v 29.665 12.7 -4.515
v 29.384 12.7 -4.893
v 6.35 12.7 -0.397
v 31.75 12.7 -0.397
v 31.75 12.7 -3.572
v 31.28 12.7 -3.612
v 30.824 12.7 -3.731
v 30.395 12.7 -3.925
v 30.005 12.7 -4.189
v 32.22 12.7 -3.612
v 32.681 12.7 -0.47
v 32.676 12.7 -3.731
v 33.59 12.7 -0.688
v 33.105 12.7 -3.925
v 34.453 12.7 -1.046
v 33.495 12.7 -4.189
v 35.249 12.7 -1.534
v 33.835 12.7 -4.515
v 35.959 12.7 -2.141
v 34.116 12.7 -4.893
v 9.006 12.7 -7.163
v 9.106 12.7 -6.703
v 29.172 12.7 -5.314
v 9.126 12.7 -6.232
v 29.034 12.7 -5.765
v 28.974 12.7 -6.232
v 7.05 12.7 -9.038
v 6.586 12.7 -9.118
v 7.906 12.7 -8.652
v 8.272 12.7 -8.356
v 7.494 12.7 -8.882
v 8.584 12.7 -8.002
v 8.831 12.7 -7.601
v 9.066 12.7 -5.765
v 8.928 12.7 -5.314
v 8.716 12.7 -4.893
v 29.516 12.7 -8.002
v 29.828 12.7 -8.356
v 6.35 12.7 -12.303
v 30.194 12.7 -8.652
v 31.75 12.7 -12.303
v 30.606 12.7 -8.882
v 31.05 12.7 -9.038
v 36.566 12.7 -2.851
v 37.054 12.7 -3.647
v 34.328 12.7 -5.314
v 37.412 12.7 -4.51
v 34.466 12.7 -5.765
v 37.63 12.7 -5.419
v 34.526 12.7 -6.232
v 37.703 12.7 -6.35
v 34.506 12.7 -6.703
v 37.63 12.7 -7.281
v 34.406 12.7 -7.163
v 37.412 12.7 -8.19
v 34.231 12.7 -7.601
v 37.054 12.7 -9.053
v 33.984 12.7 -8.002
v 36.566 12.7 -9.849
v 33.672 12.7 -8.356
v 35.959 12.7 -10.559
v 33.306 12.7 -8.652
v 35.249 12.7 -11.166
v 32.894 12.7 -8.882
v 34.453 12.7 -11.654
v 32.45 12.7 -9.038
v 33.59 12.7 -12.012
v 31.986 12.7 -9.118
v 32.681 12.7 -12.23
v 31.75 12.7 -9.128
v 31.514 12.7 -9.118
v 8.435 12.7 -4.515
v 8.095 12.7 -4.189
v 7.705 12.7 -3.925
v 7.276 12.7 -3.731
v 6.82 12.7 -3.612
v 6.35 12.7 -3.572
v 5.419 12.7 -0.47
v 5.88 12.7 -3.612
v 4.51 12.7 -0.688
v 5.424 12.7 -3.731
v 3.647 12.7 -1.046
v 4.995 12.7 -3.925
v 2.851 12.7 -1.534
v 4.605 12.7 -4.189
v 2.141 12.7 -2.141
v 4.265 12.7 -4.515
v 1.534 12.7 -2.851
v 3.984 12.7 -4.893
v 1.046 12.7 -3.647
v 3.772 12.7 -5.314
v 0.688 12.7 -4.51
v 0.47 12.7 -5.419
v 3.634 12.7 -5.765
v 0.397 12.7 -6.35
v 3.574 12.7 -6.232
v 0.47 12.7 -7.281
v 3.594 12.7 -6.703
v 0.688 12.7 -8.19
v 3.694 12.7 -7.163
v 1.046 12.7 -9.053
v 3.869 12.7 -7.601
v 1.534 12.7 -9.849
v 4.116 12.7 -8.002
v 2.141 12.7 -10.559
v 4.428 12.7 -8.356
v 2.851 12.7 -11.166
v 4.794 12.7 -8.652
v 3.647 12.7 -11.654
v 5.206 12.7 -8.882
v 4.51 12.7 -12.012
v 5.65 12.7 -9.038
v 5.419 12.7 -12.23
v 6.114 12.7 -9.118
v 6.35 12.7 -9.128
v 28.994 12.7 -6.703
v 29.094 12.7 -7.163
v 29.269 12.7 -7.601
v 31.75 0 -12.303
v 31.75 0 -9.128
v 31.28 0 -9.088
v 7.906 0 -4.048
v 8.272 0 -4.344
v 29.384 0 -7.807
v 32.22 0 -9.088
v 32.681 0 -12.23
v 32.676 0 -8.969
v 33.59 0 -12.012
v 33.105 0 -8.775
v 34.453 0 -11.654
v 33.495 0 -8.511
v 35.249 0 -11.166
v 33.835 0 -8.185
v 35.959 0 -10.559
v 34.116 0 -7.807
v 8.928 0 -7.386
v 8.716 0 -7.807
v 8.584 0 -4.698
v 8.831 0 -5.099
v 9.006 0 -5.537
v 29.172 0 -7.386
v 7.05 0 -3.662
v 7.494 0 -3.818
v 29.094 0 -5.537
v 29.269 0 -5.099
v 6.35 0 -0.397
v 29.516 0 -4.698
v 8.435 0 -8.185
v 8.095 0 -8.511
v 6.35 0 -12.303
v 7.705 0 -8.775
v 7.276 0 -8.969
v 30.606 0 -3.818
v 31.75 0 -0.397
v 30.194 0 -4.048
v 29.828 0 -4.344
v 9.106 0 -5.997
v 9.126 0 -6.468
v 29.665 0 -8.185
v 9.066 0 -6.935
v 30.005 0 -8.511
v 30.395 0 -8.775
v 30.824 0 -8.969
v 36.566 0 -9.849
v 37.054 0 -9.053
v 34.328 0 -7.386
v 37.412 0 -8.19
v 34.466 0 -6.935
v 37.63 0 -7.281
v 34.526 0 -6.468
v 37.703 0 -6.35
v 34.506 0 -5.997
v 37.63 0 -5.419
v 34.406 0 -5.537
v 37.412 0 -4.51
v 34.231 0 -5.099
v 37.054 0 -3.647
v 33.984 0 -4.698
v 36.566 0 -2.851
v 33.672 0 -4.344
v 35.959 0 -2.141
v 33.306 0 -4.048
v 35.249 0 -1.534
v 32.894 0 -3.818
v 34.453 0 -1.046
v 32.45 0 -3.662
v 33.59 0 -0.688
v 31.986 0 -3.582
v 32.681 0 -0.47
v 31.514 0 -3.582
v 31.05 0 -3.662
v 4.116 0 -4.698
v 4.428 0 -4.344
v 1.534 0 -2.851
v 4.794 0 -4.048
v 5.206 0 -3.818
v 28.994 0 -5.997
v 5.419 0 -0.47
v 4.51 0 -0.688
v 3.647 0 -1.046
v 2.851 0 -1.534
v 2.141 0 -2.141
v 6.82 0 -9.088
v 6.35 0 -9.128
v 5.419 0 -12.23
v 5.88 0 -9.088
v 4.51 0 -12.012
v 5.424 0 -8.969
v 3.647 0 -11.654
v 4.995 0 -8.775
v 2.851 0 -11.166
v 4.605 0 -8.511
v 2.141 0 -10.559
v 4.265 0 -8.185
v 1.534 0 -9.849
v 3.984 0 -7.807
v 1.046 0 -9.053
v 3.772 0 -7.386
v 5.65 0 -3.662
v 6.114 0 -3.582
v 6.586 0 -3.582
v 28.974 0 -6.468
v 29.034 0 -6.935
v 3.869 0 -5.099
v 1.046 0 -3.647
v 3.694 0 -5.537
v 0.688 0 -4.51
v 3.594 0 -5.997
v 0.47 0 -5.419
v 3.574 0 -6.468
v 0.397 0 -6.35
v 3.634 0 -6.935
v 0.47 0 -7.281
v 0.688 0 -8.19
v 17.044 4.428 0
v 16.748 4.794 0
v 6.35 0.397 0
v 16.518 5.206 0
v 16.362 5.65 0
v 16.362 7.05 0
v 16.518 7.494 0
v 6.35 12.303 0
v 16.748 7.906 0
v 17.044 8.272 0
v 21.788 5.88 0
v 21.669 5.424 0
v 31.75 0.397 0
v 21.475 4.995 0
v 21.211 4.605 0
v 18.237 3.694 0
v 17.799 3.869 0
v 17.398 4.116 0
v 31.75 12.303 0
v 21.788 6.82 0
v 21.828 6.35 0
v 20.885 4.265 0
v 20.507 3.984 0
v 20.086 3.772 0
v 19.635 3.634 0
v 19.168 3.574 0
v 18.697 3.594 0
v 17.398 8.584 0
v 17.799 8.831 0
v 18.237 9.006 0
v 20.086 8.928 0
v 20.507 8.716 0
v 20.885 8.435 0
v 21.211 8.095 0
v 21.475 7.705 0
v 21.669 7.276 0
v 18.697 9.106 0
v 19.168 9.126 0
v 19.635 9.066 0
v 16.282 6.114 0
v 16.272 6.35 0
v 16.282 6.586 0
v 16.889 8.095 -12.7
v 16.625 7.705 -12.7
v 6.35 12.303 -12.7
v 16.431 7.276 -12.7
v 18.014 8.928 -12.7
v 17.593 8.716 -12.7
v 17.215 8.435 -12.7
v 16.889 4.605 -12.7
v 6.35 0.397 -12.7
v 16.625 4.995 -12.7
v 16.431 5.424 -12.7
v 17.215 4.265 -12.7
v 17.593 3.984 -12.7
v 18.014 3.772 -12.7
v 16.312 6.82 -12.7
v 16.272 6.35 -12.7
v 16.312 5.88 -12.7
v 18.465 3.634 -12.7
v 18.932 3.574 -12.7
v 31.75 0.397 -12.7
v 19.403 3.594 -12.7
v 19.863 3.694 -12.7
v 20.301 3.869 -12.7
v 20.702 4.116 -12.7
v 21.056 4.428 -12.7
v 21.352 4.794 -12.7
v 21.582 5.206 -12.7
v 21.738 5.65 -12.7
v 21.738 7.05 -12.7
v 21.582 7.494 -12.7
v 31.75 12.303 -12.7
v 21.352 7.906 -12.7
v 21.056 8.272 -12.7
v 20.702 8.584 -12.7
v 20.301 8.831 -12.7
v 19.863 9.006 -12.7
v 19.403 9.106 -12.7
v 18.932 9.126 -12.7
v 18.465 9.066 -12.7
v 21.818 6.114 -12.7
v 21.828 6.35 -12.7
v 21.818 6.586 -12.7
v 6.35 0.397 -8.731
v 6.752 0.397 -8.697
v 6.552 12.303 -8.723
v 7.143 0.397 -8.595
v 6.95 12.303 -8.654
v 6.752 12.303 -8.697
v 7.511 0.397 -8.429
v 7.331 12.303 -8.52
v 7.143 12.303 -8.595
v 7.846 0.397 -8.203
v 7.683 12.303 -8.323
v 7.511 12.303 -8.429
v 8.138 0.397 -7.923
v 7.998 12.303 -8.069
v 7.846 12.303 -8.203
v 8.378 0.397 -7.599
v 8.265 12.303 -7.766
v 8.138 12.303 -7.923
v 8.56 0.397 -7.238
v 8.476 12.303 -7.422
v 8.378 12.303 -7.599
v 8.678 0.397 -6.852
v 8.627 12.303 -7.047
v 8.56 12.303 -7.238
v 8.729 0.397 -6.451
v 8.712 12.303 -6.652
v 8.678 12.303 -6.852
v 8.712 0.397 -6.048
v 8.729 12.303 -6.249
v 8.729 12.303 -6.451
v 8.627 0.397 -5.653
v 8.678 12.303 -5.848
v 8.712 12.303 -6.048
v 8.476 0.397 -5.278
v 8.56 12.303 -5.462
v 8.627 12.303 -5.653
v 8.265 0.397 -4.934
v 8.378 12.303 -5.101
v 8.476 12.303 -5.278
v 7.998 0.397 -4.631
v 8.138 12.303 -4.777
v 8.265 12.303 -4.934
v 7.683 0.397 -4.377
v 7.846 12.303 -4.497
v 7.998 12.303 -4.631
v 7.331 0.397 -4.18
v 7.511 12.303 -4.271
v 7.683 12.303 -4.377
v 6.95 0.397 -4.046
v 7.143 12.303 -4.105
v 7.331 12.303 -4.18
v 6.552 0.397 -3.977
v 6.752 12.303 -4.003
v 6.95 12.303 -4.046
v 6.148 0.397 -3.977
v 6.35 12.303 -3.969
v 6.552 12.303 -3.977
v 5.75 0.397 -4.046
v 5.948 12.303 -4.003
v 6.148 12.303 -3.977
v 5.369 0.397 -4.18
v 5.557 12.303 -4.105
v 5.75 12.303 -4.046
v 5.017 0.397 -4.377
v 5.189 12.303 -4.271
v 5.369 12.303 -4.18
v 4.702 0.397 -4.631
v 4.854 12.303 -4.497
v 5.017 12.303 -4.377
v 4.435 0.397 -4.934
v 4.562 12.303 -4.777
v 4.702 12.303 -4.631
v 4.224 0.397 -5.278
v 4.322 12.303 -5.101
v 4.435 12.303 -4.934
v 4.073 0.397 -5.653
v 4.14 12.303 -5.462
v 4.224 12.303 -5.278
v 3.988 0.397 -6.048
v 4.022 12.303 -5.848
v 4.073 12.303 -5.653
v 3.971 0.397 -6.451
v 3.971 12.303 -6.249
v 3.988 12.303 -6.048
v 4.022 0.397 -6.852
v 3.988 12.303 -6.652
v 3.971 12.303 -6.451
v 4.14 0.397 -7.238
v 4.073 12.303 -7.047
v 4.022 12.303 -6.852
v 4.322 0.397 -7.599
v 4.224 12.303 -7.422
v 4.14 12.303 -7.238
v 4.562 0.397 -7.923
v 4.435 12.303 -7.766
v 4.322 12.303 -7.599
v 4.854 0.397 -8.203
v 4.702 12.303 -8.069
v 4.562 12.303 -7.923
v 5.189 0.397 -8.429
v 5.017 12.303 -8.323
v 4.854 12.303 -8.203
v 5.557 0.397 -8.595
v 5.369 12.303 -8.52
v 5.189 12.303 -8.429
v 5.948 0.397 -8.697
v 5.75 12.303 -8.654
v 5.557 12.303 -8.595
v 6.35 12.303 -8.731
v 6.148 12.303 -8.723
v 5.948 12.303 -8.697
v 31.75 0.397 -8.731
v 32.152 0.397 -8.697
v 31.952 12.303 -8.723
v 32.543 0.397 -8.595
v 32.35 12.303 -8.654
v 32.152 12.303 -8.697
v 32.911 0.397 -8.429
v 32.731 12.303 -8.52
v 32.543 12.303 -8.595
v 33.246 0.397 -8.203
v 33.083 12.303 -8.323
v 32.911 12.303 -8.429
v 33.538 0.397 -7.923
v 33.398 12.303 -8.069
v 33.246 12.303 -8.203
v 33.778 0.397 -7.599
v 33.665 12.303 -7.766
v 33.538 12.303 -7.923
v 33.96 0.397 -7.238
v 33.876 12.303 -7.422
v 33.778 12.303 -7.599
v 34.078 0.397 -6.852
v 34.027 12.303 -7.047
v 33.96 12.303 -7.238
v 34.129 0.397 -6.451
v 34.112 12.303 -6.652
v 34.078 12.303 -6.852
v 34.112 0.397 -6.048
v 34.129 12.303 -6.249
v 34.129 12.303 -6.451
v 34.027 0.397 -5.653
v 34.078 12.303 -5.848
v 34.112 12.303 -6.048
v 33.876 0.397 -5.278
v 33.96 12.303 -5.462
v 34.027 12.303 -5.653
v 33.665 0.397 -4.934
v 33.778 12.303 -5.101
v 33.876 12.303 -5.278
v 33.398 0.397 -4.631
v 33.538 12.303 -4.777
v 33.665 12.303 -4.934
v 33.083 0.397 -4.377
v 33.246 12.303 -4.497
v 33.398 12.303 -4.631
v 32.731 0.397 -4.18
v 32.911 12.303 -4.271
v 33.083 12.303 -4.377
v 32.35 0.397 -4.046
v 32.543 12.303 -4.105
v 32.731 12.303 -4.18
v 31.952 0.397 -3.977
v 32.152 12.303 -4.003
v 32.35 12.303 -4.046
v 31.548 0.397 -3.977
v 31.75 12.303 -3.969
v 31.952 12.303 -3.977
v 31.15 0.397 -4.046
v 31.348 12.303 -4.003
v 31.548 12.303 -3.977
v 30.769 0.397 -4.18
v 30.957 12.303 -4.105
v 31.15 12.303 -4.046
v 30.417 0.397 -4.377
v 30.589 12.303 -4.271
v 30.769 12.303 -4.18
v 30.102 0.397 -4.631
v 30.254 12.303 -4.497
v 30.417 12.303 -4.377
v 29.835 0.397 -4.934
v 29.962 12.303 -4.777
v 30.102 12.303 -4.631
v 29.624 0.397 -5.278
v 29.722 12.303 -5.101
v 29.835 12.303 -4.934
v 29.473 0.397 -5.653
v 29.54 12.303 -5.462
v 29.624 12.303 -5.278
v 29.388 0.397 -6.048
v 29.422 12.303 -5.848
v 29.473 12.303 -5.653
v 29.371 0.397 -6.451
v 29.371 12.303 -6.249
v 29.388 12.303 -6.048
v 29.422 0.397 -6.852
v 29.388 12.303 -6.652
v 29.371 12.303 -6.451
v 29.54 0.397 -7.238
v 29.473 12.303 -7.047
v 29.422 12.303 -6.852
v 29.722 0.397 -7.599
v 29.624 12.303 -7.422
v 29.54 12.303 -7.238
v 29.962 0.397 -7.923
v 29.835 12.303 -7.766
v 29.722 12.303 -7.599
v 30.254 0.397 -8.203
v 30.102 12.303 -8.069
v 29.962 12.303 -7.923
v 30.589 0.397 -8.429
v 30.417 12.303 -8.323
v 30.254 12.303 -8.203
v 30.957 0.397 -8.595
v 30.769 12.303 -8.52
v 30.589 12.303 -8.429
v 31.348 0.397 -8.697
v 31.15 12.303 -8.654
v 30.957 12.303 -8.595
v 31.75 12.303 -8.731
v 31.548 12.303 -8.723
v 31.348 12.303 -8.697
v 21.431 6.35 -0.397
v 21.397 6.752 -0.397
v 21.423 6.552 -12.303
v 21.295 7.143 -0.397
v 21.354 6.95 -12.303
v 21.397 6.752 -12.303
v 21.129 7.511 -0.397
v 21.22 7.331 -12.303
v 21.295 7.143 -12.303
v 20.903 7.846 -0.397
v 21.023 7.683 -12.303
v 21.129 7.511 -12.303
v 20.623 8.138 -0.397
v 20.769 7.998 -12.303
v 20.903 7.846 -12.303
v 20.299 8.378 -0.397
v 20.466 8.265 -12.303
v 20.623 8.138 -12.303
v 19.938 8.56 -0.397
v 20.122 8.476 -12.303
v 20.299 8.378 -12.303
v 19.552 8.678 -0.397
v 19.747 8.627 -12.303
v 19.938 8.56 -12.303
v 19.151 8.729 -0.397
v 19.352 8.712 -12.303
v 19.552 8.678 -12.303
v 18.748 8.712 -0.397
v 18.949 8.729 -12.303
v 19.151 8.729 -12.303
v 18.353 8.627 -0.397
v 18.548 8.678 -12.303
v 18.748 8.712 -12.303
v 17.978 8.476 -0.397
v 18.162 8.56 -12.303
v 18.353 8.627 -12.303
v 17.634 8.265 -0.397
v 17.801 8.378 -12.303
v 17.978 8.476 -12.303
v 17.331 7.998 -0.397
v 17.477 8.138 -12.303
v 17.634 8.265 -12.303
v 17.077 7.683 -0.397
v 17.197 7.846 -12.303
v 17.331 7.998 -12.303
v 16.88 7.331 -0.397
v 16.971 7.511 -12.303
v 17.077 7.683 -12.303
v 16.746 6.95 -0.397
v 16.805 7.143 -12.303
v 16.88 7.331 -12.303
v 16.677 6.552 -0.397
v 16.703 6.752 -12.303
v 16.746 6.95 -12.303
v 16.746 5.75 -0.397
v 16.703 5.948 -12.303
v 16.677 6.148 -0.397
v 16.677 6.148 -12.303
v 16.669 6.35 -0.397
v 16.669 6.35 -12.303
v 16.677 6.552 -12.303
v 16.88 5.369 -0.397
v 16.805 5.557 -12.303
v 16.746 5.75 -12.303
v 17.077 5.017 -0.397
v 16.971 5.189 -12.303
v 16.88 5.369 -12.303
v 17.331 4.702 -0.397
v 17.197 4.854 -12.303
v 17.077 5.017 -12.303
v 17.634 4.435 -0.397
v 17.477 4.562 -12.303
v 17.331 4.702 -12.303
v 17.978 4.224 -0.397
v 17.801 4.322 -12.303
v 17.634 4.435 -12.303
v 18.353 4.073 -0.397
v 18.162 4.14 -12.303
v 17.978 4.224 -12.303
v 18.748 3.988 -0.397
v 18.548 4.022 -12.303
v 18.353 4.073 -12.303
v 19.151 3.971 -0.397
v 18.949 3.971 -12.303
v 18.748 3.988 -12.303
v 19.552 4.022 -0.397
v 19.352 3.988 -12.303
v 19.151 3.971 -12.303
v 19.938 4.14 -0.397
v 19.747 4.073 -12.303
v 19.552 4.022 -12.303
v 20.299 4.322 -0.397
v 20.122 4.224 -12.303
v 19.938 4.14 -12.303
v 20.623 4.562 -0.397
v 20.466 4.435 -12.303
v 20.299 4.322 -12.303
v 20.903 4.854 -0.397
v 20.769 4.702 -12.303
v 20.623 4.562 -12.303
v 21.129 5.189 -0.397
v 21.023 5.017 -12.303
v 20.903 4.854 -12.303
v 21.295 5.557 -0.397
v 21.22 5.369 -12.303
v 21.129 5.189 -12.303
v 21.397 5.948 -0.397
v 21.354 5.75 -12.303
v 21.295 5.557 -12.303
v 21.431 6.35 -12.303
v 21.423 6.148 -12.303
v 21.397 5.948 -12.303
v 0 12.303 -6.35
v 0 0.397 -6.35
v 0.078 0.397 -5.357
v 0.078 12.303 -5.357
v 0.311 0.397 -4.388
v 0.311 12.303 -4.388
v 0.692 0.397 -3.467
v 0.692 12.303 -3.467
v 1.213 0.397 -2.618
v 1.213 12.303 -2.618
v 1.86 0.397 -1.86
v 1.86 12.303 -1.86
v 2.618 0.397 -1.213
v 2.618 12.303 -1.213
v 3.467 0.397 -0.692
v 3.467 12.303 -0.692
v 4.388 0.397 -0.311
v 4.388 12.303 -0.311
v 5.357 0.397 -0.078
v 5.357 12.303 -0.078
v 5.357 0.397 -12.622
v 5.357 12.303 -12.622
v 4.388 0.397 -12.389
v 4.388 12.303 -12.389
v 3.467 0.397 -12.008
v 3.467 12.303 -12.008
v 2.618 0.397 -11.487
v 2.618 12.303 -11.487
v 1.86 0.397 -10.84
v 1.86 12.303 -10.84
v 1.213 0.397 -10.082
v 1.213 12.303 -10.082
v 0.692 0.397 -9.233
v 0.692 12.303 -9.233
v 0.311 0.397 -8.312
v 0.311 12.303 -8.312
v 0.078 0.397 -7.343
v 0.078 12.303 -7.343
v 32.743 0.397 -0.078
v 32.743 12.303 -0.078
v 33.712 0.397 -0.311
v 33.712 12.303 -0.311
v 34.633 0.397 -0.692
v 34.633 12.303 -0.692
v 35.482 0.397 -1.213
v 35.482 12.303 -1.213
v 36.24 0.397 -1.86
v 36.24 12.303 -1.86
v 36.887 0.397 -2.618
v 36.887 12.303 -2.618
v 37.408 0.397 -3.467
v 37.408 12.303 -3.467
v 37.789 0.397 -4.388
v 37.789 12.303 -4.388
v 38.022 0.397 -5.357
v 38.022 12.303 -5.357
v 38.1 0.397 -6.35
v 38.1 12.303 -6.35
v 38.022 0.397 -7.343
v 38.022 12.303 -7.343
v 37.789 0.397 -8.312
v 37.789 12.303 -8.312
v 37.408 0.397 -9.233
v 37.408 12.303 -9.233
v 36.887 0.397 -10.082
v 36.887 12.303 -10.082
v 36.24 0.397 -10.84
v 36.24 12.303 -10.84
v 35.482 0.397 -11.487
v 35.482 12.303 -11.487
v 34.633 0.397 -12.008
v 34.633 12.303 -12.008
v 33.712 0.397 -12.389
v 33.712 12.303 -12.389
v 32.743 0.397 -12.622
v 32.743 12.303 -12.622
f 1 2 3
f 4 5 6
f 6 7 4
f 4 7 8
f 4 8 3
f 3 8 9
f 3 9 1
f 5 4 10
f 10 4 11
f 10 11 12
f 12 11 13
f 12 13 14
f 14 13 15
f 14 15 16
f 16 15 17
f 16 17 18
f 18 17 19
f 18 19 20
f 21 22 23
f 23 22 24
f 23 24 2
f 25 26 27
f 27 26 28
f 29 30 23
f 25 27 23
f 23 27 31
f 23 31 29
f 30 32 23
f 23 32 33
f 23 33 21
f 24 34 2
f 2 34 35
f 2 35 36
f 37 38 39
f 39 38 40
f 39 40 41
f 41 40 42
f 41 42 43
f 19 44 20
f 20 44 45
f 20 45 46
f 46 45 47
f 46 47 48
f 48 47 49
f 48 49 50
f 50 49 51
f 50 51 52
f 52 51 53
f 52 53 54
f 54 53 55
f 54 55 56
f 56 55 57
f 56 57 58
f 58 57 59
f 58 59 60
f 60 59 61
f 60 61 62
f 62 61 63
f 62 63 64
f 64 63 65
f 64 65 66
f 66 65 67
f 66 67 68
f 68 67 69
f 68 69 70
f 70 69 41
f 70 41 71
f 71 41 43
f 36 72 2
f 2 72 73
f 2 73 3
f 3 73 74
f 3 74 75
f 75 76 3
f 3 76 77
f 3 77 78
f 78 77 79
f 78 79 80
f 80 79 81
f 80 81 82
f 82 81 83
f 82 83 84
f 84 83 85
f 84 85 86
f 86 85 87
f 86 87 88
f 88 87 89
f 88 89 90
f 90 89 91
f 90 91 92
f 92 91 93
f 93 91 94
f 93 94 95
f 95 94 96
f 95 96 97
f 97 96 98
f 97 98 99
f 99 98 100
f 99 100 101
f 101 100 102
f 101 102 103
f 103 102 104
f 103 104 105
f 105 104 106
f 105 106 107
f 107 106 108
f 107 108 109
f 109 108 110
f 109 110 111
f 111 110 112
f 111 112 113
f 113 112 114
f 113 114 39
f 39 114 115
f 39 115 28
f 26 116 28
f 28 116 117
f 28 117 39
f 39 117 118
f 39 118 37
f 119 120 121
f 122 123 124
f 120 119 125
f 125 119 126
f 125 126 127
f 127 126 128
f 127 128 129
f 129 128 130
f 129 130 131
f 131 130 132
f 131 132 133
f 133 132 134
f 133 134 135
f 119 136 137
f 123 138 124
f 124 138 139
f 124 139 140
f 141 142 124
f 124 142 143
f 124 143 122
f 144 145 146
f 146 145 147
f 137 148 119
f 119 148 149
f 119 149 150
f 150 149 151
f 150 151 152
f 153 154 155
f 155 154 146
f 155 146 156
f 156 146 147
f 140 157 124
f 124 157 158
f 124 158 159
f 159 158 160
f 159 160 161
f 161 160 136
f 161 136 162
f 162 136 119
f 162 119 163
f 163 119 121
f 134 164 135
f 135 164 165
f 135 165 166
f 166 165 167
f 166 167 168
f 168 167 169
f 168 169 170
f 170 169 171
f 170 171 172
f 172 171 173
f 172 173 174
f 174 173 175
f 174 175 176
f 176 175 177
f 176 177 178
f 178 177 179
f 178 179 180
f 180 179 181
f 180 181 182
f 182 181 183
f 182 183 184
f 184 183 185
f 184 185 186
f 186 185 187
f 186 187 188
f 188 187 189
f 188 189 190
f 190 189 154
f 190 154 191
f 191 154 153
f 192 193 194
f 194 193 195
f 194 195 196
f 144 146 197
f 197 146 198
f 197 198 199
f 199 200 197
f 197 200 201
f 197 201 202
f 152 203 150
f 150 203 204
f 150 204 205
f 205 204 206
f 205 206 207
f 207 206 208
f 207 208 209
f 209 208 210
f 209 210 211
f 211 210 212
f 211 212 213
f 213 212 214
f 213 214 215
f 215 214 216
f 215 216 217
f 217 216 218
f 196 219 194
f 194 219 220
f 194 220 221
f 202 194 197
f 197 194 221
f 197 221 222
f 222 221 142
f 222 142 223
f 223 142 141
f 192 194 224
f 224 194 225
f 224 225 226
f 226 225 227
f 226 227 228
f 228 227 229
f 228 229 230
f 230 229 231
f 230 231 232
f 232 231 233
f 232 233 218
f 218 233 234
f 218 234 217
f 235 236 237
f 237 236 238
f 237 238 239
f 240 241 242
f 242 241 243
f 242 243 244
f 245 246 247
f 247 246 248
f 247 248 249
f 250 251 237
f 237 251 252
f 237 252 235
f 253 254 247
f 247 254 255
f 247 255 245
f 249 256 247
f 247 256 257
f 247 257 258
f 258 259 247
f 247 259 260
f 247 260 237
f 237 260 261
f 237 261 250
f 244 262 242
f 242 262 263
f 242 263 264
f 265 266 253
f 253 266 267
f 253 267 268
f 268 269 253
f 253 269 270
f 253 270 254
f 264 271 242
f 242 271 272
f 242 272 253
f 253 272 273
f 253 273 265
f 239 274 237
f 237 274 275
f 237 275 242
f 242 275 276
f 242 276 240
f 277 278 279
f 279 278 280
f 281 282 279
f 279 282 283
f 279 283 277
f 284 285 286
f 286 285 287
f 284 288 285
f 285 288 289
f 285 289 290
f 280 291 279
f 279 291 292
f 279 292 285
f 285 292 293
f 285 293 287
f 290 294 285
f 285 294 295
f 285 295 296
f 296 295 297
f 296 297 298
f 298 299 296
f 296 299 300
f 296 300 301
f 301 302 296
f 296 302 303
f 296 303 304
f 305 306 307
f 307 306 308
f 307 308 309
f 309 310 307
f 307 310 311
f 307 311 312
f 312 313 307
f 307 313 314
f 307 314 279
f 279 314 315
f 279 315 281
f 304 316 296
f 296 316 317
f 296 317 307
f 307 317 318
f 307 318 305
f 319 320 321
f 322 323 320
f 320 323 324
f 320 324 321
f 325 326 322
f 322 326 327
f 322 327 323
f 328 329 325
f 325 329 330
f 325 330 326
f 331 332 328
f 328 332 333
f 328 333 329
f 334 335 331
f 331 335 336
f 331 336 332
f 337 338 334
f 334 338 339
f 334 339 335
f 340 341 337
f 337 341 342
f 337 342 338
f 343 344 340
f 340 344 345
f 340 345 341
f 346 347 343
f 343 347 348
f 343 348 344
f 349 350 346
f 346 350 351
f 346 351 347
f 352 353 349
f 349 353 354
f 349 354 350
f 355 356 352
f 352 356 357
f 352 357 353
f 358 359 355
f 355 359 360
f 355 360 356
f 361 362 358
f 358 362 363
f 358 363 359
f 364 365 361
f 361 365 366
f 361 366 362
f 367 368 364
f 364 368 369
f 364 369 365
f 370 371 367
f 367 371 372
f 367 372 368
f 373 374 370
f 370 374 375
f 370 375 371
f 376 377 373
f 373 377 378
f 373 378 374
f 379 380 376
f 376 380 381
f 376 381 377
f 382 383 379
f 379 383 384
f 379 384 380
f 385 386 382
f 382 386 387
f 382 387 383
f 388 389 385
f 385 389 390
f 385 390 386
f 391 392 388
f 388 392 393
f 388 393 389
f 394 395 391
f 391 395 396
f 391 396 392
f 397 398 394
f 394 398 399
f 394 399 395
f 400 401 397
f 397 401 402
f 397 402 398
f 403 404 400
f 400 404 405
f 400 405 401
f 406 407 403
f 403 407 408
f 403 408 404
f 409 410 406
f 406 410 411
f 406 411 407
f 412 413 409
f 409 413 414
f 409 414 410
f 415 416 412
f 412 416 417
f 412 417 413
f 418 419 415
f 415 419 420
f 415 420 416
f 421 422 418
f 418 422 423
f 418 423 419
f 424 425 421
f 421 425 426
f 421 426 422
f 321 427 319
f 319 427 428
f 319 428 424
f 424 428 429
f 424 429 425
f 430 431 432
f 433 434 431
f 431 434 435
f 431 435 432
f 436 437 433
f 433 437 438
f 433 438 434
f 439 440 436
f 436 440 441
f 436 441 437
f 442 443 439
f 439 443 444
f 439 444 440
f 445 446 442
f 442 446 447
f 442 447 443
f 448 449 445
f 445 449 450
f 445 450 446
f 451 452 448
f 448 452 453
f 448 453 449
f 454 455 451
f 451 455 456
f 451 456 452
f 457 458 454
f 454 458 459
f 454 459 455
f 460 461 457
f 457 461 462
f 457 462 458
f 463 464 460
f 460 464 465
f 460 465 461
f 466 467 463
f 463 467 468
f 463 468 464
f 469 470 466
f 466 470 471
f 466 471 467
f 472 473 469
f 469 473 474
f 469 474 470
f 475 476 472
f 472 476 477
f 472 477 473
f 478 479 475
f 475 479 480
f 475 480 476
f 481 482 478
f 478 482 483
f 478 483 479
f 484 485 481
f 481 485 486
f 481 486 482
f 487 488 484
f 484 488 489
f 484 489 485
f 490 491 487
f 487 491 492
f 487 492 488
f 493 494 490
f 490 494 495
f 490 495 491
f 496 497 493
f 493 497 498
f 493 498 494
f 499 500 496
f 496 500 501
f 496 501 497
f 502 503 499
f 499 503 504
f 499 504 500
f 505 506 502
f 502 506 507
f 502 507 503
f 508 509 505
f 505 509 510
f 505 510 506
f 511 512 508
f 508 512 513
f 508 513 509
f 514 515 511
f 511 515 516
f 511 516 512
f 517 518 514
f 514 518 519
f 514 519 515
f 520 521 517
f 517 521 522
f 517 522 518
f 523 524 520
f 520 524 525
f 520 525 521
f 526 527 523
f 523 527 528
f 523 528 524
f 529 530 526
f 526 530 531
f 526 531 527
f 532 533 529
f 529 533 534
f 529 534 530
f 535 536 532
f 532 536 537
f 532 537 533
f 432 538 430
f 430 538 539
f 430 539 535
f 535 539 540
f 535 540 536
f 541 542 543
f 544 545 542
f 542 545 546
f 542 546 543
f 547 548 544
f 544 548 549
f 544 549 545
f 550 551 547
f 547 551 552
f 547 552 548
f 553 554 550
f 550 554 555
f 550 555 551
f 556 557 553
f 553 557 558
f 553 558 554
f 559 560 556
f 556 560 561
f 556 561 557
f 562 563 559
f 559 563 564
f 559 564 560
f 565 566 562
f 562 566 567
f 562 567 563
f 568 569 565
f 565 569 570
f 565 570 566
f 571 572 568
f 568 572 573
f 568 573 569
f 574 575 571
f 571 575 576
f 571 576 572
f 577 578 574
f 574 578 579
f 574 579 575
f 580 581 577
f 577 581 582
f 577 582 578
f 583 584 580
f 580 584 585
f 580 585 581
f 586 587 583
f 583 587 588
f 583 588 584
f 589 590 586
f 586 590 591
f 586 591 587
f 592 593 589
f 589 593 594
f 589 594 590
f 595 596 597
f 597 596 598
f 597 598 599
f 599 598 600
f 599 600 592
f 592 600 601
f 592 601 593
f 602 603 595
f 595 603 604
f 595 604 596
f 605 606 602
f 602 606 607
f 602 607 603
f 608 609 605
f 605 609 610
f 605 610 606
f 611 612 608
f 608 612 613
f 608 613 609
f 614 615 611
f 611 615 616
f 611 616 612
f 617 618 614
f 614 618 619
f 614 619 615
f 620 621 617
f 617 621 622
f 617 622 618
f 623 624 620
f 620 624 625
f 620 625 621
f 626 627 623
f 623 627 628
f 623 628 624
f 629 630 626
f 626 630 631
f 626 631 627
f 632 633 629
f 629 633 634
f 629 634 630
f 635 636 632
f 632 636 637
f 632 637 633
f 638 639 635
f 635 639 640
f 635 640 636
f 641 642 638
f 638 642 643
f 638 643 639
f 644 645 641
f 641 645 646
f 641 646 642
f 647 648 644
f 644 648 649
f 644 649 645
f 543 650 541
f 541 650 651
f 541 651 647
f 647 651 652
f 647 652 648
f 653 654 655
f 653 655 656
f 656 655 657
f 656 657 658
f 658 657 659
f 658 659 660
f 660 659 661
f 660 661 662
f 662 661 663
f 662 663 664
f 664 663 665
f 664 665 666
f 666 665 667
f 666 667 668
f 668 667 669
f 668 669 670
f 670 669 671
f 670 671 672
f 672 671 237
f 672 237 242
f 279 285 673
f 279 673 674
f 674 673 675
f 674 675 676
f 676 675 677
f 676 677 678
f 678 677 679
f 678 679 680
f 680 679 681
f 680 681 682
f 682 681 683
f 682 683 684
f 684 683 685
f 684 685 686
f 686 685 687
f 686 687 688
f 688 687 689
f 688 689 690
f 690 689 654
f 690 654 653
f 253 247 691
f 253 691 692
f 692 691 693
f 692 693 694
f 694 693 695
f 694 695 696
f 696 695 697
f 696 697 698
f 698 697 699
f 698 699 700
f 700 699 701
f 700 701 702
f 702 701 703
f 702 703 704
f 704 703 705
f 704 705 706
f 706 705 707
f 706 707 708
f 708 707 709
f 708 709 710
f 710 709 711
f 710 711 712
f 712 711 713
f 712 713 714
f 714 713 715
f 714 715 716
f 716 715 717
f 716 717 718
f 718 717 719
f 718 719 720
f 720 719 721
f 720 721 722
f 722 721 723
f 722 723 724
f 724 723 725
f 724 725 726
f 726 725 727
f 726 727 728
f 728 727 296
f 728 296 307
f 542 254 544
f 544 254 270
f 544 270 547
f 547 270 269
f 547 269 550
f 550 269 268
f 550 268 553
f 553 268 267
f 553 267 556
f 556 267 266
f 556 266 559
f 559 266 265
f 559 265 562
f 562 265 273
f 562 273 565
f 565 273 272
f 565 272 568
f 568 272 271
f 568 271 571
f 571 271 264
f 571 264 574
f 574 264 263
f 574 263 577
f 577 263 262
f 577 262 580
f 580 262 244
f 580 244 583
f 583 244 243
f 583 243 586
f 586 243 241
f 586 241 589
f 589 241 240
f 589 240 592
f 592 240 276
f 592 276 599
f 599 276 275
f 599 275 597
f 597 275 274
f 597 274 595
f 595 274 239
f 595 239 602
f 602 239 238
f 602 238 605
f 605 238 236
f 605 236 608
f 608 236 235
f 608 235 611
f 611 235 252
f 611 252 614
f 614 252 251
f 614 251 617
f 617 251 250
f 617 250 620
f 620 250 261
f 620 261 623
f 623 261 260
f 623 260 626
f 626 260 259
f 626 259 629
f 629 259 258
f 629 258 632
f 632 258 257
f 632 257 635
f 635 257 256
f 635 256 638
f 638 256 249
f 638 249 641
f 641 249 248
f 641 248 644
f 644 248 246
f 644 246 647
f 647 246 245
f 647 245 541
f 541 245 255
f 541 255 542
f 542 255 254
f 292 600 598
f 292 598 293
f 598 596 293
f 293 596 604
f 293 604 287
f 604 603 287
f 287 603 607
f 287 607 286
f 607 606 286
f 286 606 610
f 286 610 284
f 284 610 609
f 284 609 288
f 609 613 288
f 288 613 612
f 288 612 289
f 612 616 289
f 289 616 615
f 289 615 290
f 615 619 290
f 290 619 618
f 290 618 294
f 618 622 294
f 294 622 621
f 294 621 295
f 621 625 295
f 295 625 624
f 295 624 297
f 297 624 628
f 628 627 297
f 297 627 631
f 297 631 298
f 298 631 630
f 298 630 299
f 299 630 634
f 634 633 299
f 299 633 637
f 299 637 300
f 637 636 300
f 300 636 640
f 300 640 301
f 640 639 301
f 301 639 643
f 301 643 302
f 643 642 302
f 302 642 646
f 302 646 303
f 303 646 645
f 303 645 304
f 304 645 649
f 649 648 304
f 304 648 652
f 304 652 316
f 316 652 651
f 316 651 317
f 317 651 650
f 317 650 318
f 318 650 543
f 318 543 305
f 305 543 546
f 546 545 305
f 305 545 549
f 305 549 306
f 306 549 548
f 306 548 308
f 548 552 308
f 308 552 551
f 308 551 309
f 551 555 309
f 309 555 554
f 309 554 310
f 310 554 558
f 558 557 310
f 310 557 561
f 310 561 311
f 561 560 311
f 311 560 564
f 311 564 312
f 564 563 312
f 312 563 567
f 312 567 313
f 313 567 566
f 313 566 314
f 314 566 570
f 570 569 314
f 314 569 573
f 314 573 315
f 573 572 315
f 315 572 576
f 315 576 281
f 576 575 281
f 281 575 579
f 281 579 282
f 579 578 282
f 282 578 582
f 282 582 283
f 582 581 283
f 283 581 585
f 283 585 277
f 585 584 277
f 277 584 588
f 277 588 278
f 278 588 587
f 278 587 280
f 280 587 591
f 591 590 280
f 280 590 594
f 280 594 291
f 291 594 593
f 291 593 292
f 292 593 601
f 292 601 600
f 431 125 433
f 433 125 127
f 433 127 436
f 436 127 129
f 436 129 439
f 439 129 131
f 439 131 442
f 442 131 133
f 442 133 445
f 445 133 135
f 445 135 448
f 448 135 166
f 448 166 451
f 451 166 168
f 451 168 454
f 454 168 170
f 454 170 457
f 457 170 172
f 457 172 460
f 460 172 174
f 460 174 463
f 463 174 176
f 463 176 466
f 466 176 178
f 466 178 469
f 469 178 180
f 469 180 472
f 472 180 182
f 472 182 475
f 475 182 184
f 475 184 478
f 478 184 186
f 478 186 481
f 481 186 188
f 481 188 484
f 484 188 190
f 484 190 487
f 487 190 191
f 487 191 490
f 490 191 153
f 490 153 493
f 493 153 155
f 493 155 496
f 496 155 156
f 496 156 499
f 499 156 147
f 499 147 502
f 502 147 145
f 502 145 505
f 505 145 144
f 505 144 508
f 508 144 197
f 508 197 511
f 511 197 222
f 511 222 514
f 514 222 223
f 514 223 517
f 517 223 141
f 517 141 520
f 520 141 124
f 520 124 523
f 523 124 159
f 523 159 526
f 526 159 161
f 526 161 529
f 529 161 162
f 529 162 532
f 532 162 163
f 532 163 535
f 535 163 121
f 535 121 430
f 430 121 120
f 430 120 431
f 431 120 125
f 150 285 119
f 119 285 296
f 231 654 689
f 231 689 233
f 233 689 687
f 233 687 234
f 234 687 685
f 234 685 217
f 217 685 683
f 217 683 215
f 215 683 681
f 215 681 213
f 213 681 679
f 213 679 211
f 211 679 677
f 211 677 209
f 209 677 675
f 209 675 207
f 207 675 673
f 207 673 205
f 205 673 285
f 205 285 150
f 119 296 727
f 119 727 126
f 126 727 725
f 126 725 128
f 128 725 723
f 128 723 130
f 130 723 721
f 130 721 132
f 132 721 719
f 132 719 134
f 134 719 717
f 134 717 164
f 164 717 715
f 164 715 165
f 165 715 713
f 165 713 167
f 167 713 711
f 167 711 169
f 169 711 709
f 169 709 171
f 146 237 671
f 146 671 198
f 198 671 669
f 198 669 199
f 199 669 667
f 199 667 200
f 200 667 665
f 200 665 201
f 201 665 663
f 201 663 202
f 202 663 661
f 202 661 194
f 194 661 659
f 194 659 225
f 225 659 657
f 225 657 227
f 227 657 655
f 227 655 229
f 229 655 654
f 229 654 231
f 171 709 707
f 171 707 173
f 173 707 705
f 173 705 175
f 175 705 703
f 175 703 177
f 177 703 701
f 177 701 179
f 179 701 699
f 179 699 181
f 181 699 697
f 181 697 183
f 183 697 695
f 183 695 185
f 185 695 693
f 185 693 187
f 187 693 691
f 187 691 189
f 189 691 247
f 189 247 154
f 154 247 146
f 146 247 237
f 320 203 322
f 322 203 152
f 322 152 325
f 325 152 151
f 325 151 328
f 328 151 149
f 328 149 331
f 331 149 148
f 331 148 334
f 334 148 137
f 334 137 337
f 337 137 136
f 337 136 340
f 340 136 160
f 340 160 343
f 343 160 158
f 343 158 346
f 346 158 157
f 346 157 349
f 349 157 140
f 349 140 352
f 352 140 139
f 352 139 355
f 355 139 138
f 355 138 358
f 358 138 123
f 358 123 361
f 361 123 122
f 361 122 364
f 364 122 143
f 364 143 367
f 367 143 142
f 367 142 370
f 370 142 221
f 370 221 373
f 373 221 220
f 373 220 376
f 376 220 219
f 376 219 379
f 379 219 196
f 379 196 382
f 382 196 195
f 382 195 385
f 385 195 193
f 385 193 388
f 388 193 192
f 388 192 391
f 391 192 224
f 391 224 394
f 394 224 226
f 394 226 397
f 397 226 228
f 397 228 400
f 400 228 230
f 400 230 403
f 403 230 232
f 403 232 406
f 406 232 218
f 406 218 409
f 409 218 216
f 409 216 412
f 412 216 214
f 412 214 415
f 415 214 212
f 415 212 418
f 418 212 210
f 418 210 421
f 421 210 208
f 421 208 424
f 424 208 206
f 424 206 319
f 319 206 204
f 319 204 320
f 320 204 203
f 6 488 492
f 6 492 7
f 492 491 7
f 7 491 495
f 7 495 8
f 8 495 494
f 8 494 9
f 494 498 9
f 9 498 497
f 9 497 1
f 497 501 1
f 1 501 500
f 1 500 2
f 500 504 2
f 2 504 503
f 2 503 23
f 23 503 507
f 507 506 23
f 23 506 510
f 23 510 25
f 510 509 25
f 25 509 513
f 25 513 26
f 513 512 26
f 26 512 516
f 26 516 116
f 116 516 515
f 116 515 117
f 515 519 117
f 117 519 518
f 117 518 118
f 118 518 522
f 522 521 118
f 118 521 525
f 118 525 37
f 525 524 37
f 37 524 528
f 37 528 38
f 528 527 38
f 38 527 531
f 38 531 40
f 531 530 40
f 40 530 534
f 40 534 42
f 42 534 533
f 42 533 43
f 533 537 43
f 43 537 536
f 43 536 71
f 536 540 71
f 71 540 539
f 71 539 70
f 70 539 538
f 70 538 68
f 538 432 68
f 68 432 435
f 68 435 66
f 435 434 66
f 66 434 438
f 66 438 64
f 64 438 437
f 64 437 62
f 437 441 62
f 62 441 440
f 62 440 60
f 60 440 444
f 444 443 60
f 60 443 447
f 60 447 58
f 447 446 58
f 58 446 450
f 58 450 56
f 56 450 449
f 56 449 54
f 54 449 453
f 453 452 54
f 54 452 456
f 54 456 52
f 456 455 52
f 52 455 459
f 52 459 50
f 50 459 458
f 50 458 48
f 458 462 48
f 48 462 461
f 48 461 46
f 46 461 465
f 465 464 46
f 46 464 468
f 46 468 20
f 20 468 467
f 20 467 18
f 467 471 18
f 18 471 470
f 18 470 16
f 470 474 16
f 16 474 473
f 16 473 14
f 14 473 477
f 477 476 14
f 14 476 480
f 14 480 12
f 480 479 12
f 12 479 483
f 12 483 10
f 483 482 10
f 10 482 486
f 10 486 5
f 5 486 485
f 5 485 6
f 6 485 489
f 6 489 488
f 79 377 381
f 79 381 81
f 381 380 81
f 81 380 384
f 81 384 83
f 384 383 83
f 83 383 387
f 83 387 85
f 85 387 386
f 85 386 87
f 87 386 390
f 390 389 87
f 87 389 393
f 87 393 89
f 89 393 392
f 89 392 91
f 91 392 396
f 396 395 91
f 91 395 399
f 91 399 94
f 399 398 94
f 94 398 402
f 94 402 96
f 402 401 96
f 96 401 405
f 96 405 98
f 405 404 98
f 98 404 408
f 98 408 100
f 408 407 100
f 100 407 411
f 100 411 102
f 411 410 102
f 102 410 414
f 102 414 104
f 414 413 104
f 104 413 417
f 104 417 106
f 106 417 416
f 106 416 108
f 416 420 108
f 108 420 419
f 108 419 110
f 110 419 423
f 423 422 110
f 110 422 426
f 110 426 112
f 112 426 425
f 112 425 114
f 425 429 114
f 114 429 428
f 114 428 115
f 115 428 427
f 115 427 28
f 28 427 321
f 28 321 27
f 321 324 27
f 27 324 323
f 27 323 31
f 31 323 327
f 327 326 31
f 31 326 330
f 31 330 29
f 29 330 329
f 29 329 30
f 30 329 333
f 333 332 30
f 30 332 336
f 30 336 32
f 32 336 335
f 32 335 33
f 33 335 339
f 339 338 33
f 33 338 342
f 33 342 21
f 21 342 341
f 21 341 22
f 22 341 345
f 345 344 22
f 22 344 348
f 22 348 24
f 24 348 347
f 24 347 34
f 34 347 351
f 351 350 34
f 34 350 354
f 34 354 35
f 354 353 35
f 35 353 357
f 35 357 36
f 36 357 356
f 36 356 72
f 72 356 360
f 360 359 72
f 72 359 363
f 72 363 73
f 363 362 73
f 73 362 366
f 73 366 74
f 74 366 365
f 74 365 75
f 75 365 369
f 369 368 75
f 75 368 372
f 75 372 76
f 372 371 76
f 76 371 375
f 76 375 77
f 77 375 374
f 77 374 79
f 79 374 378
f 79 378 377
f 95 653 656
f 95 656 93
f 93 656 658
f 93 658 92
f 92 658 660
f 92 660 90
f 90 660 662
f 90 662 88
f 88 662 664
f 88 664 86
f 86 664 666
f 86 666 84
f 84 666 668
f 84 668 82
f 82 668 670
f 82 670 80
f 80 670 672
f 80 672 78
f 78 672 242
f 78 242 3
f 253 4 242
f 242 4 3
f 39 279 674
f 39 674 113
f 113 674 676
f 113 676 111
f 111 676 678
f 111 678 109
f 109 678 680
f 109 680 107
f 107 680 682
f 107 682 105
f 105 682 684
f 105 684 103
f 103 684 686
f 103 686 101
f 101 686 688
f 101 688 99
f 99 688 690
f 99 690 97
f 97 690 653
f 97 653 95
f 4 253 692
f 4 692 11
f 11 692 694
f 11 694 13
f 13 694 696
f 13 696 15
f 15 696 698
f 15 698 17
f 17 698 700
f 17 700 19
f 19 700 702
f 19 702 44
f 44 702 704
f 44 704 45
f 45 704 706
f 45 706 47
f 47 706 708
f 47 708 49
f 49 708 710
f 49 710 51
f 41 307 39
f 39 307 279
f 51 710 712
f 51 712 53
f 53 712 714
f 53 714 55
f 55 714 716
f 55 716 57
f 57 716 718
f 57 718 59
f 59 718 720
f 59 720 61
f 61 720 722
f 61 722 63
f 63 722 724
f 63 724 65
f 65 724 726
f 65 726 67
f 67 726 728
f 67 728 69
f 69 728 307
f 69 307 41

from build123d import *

# Parameters (mm, degrees)
SKETCH1_W               = 38.1
SKETCH1_H               = 12.7
SKETCH1_R               = 2.38125
BOSS_EXTRUDE1_DEPTH     = 12.7
CUT_EXTRUDE1_DEPTH      = 43.121134838
CUT_EXTRUDE1_DEPTH_BACK = 43.121134838
SKETCH2_R               = 2.38125
FILLET2_R               = 6.35
CHAMFER3_SIZE           = 0.396875


with BuildPart() as part:
    # Sketch1 → Boss-Extrude1 (new body)
    with BuildSketch(Plane(origin=(0, 0, 0), x_dir=(1, 0, 0), z_dir=(0, 1, 0))):
        with Locations((19.05, 6.35)):
            Rectangle(SKETCH1_W, SKETCH1_H)
        with Locations(Location((6.35, 6.35, 0), (0, 0, 270))):
            Circle(SKETCH1_R, mode=Mode.SUBTRACT)
        with Locations(Location((31.75, 6.35, 0), (0, 0, 270))):
            Circle(SKETCH1_R, mode=Mode.SUBTRACT)
    extrude(amount=BOSS_EXTRUDE1_DEPTH)

    # Sketch2 → Cut-Extrude1 (cut, two sides: drawn at the far end of the back side and taken through both)
    with BuildSketch(Plane.XY.offset(-CUT_EXTRUDE1_DEPTH_BACK)):
        with Locations((19.05, 6.35)):
            Circle(SKETCH2_R)
    extrude(amount=CUT_EXTRUDE1_DEPTH + CUT_EXTRUDE1_DEPTH_BACK, mode=Mode.SUBTRACT)

    # Fillet2
    fillet2_edges = [part.edges().sort_by_distance(p)[0] for p in [
        (0, 6.35, -12.7),
        (0, 6.35, 0),
        (38.1, 6.35, -12.7),
        (38.1, 6.35, 0),
    ]]
    fillet(fillet2_edges, radius=FILLET2_R - 0.0001)  # a hair under: the kernel refuses the full size

    # Chamfer3
    chamfer3_edges = [part.edges().sort_by_distance(p)[0] for p in [
        (6.35, 0, -8.73125),
        (6.35, 12.7, -8.73125),
        (31.75, 0, -8.73125),
        (31.75, 12.7, -8.73125),
        (16.66875, 6.35, -12.7),
        (16.66875, 6.35, 0),
        (19.05, 0, -12.7),
        (19.05, 0, 0),
        (36.24015735, 0, -1.85984265),
        (36.24015735, 0, -10.84015735),
        (1.85984265, 0, -1.85984265),
        (1.85984265, 0, -10.84015735),
        (19.05, 12.7, -12.7),
        (19.05, 12.7, 0),
        (36.24015735, 12.7, -1.85984265),
        (36.24015735, 12.7, -10.84015735),
        (1.85984265, 12.7, -1.85984265),
        (1.85984265, 12.7, -10.84015735),
    ]]
    chamfer(chamfer3_edges, length=CHAMFER3_SIZE)


solid = part.part
